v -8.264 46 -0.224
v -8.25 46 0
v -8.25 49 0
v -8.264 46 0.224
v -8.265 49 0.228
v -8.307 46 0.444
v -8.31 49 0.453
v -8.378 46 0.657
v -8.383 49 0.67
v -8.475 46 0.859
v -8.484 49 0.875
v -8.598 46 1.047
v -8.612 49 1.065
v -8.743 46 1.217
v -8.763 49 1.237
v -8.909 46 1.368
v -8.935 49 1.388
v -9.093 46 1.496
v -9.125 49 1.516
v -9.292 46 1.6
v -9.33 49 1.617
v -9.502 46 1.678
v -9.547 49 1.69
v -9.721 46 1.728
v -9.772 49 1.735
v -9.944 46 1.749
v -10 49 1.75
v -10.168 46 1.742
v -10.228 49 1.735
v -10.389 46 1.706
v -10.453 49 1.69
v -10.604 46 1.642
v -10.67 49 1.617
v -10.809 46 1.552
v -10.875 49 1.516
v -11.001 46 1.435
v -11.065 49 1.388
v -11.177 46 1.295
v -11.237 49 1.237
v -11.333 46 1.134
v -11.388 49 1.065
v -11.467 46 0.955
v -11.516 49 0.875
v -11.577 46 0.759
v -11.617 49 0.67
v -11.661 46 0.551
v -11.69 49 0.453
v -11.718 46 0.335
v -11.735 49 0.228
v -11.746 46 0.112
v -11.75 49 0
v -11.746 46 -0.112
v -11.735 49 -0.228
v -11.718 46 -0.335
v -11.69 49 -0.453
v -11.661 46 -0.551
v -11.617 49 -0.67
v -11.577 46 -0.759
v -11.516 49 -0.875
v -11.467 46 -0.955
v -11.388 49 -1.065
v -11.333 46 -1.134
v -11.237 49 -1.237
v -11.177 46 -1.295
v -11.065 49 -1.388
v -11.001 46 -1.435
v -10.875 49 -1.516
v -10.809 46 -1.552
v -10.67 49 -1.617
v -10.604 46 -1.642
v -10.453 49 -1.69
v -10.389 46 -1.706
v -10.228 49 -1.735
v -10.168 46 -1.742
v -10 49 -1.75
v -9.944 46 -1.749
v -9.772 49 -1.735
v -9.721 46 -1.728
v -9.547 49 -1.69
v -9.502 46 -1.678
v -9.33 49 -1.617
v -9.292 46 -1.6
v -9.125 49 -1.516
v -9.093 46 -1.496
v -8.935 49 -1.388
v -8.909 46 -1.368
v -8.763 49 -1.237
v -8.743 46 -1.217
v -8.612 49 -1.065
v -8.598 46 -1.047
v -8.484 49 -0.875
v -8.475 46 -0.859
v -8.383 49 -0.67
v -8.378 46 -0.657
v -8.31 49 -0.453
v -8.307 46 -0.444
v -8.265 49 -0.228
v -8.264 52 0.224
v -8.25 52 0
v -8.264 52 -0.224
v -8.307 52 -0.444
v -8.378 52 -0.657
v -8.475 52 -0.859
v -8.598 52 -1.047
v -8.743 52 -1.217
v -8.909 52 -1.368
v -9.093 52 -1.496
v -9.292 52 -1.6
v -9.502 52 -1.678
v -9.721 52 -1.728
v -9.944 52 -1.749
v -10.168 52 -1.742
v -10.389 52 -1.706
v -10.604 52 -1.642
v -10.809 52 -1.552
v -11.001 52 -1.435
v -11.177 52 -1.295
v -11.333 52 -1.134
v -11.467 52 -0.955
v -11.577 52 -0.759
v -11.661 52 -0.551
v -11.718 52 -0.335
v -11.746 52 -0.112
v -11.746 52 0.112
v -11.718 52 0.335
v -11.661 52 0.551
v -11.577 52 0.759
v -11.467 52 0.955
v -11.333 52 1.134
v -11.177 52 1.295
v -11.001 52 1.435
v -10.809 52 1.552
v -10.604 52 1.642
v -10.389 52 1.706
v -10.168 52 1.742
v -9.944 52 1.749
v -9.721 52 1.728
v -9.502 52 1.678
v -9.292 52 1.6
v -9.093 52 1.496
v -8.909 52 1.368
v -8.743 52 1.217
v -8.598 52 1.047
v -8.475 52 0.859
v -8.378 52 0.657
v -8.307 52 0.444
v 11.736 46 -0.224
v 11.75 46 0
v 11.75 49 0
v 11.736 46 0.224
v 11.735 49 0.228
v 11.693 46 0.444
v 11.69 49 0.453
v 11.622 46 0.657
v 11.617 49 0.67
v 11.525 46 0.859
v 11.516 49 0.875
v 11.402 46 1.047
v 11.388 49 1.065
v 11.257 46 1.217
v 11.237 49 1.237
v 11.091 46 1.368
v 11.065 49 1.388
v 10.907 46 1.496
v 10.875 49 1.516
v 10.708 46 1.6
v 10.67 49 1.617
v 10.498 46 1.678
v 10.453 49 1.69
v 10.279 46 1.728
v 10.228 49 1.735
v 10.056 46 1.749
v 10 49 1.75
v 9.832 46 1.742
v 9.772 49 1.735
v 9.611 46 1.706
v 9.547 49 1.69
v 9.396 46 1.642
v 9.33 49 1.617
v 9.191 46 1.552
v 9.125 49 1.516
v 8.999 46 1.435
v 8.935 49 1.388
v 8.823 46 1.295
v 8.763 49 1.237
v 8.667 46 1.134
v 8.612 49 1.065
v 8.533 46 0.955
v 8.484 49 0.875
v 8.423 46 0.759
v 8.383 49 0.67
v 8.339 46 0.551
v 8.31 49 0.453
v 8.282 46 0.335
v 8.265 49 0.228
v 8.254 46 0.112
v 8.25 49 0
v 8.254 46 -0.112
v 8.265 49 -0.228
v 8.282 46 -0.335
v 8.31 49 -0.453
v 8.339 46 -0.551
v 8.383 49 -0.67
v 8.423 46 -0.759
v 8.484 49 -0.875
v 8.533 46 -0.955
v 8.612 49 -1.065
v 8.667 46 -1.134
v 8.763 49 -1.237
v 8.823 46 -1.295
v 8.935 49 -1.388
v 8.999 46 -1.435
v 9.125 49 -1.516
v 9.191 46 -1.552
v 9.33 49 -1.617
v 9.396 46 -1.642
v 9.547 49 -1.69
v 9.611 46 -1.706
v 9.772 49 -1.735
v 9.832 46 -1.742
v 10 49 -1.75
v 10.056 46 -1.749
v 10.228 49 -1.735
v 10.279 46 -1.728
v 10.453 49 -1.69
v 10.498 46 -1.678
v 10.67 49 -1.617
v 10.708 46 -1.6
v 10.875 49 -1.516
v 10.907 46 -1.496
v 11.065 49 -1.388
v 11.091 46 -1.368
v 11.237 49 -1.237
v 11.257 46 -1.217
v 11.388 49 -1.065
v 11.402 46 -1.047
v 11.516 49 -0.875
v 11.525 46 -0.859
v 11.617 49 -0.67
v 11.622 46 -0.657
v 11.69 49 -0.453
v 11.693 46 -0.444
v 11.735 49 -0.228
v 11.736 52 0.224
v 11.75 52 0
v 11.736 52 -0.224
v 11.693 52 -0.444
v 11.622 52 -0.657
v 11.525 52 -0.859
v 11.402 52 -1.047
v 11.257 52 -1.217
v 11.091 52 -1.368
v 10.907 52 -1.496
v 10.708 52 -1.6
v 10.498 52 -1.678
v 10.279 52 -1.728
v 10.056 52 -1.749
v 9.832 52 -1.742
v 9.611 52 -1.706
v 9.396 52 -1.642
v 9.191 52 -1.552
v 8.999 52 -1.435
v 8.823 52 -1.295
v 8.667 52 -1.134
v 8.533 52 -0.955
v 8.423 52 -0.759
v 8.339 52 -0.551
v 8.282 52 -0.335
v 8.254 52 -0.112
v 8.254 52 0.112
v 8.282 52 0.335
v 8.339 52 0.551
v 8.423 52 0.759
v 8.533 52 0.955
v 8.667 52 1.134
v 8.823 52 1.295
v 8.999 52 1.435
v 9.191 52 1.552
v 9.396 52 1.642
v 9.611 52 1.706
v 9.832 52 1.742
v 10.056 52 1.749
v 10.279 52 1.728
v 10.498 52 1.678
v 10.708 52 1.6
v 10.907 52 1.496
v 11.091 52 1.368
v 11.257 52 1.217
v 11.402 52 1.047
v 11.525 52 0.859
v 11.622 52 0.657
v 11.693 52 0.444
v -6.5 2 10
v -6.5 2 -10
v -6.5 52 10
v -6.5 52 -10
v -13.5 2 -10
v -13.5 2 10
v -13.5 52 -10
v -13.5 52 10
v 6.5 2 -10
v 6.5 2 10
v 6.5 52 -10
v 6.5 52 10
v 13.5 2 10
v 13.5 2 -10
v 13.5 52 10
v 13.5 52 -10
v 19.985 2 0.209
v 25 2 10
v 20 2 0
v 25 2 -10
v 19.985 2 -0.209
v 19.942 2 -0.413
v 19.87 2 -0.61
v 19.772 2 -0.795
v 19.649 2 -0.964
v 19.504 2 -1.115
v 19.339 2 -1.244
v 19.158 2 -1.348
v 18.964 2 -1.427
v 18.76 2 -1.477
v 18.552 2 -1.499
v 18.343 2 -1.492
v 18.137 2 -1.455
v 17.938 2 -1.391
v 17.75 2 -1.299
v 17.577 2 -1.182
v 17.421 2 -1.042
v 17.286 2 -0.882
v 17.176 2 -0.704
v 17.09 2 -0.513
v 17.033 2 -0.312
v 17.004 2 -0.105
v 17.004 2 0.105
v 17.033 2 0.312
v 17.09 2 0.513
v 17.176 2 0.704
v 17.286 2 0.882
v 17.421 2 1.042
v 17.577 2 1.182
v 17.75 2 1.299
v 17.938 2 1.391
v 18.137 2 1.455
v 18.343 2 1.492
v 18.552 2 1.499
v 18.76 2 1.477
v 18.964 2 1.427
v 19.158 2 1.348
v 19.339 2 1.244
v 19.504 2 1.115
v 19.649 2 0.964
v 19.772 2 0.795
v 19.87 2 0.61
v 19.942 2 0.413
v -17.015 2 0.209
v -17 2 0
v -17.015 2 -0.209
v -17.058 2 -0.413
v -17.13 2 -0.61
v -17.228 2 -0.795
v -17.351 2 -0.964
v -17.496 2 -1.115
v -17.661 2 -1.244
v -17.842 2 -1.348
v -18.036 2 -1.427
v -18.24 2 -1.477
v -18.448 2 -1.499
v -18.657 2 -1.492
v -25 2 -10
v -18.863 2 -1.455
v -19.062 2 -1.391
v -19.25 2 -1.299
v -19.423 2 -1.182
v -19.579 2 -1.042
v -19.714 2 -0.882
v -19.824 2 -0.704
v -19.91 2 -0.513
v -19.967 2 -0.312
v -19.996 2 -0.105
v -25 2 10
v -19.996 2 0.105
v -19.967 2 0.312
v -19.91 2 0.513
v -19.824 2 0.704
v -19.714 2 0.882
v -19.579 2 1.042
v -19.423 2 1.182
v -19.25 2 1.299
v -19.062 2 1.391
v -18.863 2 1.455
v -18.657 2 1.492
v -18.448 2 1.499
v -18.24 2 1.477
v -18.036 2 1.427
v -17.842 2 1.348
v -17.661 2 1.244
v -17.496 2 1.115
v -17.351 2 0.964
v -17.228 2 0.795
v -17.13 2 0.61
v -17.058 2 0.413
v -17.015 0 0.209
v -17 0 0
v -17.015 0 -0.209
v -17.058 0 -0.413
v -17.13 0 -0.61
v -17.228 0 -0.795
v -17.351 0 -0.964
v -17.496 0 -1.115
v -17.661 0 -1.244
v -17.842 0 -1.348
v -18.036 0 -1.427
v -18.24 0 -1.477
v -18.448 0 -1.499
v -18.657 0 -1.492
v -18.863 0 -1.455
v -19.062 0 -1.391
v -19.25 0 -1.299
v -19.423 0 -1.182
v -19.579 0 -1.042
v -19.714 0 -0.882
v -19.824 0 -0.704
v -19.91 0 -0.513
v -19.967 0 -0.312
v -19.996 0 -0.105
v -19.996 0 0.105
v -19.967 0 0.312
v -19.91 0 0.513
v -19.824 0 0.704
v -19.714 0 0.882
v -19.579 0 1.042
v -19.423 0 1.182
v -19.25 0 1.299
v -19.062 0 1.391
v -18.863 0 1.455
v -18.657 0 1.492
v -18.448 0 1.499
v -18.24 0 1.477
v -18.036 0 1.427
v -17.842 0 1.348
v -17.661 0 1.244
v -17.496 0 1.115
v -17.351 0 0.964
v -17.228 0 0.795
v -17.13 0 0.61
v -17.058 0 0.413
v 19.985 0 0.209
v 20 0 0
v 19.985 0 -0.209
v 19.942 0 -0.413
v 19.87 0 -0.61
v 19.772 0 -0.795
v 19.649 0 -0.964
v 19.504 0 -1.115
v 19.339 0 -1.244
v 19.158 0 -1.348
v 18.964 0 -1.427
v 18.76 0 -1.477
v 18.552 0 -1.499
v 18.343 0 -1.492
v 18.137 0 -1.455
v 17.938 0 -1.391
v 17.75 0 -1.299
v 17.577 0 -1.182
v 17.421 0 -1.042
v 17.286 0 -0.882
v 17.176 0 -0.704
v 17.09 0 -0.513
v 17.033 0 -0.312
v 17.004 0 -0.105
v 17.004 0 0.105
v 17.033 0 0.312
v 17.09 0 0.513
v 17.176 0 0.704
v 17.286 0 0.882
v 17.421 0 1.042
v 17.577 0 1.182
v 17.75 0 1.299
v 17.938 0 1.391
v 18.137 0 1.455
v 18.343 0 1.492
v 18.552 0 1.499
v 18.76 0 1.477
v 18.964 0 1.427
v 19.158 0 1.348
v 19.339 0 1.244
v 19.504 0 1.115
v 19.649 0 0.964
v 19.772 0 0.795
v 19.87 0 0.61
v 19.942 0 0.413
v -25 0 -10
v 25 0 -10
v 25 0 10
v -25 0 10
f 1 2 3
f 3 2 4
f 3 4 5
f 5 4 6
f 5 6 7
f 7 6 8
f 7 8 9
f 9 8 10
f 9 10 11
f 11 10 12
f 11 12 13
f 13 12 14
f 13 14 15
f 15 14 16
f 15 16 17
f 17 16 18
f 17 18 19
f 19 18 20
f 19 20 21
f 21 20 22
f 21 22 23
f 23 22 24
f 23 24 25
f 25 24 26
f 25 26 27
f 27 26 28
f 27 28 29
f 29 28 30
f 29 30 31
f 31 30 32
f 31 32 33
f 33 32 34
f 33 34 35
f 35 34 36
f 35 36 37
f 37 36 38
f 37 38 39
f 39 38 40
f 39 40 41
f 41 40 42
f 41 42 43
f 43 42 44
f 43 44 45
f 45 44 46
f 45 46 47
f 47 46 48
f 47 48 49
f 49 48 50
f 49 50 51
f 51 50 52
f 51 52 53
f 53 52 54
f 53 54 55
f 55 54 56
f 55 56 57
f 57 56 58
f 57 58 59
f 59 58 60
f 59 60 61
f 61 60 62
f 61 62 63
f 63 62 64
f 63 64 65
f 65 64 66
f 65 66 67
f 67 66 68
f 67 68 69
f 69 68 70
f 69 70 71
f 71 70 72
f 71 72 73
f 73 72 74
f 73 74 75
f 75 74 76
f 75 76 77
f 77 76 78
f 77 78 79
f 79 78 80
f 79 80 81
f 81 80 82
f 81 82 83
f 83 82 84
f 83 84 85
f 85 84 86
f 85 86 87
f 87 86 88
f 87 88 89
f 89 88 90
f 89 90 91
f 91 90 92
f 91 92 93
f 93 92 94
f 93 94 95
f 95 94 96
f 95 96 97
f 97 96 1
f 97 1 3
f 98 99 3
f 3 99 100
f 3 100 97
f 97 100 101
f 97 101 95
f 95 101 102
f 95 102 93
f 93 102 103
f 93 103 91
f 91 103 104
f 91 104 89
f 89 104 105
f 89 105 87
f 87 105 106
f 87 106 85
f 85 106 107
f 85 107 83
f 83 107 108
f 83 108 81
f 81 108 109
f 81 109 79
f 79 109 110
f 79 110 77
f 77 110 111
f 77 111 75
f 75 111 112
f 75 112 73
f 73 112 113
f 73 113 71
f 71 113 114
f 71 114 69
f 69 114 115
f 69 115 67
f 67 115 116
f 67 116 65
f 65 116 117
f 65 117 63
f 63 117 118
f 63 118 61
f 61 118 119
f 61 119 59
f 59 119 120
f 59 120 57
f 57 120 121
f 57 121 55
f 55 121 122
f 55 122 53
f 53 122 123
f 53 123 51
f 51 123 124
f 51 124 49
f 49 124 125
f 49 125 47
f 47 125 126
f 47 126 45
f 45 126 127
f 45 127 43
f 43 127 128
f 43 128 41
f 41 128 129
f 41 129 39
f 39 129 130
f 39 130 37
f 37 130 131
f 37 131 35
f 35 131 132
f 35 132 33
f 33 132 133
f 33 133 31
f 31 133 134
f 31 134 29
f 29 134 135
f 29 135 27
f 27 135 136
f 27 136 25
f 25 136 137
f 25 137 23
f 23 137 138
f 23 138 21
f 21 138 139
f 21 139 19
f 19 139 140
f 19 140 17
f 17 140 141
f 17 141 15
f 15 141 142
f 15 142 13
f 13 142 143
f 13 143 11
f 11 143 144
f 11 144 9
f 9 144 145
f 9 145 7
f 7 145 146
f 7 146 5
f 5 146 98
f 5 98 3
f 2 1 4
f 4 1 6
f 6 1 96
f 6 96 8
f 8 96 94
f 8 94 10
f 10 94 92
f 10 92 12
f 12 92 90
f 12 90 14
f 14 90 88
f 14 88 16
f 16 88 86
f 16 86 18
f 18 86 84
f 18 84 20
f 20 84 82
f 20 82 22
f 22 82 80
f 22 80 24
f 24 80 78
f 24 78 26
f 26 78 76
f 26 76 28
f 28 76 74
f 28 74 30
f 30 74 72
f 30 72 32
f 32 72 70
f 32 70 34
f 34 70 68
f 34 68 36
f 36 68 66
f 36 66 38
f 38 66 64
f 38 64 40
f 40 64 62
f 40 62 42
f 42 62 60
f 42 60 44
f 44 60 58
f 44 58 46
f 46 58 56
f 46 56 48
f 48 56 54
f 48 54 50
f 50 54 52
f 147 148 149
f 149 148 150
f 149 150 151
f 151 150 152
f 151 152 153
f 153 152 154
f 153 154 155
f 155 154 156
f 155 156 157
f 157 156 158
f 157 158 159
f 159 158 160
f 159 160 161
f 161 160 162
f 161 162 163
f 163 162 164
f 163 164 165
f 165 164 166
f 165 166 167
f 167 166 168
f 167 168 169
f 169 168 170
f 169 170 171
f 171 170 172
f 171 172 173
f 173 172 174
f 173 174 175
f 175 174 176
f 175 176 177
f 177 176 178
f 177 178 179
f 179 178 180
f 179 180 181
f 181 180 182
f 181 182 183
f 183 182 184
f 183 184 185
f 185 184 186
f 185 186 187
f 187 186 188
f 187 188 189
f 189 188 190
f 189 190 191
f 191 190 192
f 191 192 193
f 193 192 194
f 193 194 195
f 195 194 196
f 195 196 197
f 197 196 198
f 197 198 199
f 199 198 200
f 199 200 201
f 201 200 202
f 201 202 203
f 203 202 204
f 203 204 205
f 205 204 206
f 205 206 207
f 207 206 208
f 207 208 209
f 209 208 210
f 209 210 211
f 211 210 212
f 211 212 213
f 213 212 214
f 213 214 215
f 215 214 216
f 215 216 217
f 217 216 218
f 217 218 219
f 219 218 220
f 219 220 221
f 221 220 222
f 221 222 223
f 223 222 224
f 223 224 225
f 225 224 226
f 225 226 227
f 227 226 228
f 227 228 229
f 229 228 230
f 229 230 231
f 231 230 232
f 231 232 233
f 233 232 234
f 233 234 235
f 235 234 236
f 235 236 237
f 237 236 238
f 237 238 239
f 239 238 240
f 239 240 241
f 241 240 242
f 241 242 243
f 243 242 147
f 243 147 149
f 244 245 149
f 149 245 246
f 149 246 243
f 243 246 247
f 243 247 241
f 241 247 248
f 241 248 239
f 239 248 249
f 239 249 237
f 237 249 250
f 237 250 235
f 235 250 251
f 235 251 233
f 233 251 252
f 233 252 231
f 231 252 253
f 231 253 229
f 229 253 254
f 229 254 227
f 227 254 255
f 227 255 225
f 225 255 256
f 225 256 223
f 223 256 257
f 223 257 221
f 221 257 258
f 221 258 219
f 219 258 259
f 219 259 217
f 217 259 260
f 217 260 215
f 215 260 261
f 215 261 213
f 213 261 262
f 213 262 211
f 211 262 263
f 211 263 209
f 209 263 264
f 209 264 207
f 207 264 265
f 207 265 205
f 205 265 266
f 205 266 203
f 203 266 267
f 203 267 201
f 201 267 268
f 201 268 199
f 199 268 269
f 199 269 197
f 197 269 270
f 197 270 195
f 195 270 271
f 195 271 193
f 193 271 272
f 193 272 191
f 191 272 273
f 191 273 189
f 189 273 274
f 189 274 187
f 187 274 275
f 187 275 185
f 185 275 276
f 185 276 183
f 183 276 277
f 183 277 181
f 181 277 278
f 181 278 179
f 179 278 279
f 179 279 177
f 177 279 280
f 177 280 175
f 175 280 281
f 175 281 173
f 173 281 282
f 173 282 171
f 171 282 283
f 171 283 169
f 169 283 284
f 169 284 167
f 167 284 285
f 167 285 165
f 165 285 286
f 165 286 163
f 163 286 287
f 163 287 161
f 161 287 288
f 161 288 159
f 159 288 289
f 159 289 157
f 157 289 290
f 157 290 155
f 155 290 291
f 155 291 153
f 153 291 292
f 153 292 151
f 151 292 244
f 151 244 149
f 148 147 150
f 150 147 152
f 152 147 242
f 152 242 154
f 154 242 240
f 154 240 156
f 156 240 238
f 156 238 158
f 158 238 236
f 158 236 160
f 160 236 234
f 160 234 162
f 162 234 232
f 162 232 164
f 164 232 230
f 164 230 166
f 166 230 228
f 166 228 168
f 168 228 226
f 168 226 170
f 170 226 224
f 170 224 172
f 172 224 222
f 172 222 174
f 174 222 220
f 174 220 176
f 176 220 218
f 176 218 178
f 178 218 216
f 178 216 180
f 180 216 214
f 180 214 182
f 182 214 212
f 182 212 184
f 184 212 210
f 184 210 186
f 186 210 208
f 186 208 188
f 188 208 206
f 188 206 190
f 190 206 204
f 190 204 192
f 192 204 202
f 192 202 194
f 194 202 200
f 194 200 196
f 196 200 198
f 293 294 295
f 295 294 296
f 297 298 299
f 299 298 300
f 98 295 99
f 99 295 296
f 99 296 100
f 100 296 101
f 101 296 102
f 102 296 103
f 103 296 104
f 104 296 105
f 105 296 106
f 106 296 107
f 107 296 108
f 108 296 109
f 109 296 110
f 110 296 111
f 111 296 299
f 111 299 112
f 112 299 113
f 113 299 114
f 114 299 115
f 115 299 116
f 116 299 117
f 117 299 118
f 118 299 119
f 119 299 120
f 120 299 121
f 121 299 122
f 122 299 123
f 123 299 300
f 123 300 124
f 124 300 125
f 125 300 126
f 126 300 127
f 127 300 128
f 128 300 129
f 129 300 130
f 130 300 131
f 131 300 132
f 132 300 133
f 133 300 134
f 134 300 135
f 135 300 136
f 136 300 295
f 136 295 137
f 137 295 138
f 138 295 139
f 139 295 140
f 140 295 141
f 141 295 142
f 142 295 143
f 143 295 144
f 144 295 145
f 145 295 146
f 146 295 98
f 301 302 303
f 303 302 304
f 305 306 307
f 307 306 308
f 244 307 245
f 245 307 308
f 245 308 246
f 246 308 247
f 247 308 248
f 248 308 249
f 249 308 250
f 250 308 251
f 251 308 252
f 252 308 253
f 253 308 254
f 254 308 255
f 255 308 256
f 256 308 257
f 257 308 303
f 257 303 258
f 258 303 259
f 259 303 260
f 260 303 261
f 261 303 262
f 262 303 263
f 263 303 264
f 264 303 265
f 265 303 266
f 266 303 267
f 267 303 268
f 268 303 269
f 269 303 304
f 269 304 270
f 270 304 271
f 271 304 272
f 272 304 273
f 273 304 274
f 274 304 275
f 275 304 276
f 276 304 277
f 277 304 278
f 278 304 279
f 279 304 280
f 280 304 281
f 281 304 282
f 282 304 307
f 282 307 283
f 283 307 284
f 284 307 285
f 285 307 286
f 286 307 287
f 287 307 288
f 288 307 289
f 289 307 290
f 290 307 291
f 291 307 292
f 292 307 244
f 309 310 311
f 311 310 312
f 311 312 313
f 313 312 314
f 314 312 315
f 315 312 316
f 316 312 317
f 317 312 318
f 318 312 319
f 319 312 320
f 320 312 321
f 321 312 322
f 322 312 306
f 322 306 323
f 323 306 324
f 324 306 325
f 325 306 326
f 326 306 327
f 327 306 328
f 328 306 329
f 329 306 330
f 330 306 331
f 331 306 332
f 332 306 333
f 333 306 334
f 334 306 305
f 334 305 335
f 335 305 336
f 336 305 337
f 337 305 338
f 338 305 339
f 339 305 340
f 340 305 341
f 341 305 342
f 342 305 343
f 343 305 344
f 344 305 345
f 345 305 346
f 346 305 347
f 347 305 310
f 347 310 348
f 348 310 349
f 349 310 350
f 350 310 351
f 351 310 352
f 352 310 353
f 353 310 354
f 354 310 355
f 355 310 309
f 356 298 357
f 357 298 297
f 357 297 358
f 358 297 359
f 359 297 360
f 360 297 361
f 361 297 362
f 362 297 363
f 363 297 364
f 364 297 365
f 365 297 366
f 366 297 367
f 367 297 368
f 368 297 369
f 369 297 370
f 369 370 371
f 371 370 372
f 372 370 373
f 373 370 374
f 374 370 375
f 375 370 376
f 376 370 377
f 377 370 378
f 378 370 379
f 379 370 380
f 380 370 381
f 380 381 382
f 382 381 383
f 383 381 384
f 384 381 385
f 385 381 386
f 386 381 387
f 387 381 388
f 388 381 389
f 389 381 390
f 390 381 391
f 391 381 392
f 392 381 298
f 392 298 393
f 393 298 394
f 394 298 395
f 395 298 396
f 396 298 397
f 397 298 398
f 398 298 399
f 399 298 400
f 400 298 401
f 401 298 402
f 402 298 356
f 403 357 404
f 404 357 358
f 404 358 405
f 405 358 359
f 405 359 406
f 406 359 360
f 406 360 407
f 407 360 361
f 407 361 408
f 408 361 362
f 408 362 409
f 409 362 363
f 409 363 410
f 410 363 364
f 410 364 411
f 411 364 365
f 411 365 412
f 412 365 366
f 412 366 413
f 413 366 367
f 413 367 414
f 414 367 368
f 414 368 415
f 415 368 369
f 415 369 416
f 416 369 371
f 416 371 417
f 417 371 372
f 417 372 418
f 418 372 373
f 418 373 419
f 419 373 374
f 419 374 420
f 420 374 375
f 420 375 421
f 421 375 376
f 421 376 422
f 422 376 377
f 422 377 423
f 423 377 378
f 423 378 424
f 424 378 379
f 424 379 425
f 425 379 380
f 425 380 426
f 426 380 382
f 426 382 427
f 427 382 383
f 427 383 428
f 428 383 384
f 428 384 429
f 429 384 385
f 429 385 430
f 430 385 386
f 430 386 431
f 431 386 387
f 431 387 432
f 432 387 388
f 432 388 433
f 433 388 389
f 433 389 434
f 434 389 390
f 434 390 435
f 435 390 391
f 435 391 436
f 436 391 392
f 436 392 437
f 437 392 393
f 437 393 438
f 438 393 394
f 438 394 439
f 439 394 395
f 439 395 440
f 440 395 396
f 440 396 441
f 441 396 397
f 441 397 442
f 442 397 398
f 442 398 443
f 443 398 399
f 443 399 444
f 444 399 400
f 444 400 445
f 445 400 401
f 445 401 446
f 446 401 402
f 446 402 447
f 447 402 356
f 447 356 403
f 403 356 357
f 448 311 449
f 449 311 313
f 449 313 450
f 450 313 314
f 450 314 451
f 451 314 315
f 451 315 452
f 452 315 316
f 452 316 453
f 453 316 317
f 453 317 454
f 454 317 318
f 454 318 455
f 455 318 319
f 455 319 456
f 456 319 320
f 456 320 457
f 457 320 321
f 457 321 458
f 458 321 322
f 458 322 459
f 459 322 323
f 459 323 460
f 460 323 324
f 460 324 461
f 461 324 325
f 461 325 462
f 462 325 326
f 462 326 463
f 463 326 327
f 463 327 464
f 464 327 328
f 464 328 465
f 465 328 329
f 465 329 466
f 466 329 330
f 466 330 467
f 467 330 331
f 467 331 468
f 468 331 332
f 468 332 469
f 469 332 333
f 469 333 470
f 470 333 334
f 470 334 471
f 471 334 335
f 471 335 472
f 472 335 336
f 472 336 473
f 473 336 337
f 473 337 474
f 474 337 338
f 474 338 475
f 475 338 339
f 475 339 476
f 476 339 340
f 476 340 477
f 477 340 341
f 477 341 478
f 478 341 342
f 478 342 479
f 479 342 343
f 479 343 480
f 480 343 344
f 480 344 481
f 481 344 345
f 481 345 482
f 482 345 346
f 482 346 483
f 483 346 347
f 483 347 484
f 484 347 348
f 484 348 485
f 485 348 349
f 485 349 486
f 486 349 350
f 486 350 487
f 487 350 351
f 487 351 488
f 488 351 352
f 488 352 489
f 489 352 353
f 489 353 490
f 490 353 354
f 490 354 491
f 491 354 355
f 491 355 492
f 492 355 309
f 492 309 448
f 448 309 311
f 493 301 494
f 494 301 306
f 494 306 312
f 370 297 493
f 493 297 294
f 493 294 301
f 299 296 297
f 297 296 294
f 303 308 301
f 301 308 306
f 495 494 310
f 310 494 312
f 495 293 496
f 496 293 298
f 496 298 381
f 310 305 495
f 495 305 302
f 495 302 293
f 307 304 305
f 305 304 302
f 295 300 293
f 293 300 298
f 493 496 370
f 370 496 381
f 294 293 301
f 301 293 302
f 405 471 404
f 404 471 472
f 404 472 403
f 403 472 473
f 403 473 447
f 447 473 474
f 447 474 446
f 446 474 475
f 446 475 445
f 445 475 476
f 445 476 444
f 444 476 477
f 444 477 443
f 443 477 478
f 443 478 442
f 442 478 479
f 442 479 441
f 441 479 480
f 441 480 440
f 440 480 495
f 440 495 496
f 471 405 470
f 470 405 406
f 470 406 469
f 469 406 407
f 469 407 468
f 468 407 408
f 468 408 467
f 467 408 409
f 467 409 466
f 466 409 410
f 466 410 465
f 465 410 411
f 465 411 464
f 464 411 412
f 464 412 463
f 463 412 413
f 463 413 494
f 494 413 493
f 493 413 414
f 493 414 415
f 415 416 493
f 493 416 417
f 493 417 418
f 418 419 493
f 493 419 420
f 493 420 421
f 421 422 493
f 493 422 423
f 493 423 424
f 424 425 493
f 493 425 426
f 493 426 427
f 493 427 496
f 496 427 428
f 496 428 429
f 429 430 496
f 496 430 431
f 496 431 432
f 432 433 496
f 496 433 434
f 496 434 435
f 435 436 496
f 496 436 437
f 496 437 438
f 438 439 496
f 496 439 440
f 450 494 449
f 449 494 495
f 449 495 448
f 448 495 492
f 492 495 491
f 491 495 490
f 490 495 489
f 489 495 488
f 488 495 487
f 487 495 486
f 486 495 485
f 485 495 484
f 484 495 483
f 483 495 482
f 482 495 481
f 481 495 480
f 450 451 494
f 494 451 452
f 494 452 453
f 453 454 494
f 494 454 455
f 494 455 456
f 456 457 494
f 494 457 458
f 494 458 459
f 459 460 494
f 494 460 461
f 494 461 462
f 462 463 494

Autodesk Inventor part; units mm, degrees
ref_plane "YZ Plane" through (0, 0, 0) normal (1, 0, 0) x (0, 1, 0)
ref_plane "XZ Plane" through (0, 0, 0) normal (0, 1, 0) x (-1, 0, 0)
ref_plane "XY Plane" through (0, 0, 0) normal (0, 0, 1) x (1, 0, 0)
sketch "Sketch1" plane through (0, 0, 0) normal (0, 1, 0) x (-1, 0, 0)
  line L0 (-25, -10) -> (25, -10)
  line L1 (25, -10) -> (25, 10)
  line L2 (25, 10) -> (-25, 10)
  line L3 (-25, 10) -> (-25, -10)
  line L4 (-25, 0) -> (25, 0) construction
  line L5 (0, -10) -> (0, 10) construction
  point P0 (0, 0)
  point P1 (0, 0)
  dimension "d0" = 50
  dimension "d1" = 20
extrude "Extrusion1" add sketch "Sketch1" along normal blind 2
sketch "Sketch2" plane through (0, 2, 0) normal (0, 1, 0) x (1, 0, 0)
  line L0 (25, -10) -> (25, 10) construction
  line L1 (25, 0) -> (-30.0792, 0) construction
  line L2 (25, 10) -> (-25, 10) construction
  line L3 (0, 10) -> (0, -10) construction
  line L4 (-25, -10) -> (25, -10) construction
  circle A0 centre (18.5, 0) radius 1.5
  circle A1 centre (-18.5, 0) radius 1.5
  point P0 (0, 0)
  dimension "d4" = 3
  dimension "d5" = 37
extrude "Extrusion2" cut sketch "Sketch2" against normal blind 2
sketch "Sketch6" plane through (0, 2, 0) normal (0, 1, 0) x (1, 0, 0)
  line L0 (25, 10) -> (-25, 10) construction
  line L1 (0, 10) -> (0, -10) construction
  line L2 (-25, -10) -> (25, -10) construction
  line L3 (6.5, 10) -> (13.5, 10)
  line L4 (13.5, 10) -> (13.5, -10)
  line L5 (13.5, -10) -> (6.5, -10)
  line L6 (6.5, -10) -> (6.5, 10)
  line L7 (-6.5, 10) -> (-13.5, 10)
  line L8 (-13.5, 10) -> (-13.5, -10)
  line L9 (-13.5, -10) -> (-6.5, -10)
  line L10 (-6.5, -10) -> (-6.5, 10)
  point P0 (0, 0)
  dimension "d19" = 7
  dimension "d20" = 6.5
extrude "Extrusion5" add sketch "Sketch6" along normal blind 50
sketch "Sketch7" plane through (0, 52, 0) normal (0, 1, 0) x (1, 0, 0)
  line L0 (6.5, 10) -> (-6.5, 10) construction
  line L1 (0, 10) -> (0, -10) construction
  line L2 (-6.5, -10) -> (6.5, -10) construction
  circle A0 centre (10, 0) radius 1.75
  line L3 (13.5, -10) -> (13.5, 10) construction
  circle A1 centre (-10, 0) radius 1.75
  point P0 (0, 0)
  dimension "d23" = 3.5
  dimension "d24" = 3.5
extrude "Extrusion6" cut sketch "Sketch7" against normal blind 6
properties part number "ir_sensor_support"
